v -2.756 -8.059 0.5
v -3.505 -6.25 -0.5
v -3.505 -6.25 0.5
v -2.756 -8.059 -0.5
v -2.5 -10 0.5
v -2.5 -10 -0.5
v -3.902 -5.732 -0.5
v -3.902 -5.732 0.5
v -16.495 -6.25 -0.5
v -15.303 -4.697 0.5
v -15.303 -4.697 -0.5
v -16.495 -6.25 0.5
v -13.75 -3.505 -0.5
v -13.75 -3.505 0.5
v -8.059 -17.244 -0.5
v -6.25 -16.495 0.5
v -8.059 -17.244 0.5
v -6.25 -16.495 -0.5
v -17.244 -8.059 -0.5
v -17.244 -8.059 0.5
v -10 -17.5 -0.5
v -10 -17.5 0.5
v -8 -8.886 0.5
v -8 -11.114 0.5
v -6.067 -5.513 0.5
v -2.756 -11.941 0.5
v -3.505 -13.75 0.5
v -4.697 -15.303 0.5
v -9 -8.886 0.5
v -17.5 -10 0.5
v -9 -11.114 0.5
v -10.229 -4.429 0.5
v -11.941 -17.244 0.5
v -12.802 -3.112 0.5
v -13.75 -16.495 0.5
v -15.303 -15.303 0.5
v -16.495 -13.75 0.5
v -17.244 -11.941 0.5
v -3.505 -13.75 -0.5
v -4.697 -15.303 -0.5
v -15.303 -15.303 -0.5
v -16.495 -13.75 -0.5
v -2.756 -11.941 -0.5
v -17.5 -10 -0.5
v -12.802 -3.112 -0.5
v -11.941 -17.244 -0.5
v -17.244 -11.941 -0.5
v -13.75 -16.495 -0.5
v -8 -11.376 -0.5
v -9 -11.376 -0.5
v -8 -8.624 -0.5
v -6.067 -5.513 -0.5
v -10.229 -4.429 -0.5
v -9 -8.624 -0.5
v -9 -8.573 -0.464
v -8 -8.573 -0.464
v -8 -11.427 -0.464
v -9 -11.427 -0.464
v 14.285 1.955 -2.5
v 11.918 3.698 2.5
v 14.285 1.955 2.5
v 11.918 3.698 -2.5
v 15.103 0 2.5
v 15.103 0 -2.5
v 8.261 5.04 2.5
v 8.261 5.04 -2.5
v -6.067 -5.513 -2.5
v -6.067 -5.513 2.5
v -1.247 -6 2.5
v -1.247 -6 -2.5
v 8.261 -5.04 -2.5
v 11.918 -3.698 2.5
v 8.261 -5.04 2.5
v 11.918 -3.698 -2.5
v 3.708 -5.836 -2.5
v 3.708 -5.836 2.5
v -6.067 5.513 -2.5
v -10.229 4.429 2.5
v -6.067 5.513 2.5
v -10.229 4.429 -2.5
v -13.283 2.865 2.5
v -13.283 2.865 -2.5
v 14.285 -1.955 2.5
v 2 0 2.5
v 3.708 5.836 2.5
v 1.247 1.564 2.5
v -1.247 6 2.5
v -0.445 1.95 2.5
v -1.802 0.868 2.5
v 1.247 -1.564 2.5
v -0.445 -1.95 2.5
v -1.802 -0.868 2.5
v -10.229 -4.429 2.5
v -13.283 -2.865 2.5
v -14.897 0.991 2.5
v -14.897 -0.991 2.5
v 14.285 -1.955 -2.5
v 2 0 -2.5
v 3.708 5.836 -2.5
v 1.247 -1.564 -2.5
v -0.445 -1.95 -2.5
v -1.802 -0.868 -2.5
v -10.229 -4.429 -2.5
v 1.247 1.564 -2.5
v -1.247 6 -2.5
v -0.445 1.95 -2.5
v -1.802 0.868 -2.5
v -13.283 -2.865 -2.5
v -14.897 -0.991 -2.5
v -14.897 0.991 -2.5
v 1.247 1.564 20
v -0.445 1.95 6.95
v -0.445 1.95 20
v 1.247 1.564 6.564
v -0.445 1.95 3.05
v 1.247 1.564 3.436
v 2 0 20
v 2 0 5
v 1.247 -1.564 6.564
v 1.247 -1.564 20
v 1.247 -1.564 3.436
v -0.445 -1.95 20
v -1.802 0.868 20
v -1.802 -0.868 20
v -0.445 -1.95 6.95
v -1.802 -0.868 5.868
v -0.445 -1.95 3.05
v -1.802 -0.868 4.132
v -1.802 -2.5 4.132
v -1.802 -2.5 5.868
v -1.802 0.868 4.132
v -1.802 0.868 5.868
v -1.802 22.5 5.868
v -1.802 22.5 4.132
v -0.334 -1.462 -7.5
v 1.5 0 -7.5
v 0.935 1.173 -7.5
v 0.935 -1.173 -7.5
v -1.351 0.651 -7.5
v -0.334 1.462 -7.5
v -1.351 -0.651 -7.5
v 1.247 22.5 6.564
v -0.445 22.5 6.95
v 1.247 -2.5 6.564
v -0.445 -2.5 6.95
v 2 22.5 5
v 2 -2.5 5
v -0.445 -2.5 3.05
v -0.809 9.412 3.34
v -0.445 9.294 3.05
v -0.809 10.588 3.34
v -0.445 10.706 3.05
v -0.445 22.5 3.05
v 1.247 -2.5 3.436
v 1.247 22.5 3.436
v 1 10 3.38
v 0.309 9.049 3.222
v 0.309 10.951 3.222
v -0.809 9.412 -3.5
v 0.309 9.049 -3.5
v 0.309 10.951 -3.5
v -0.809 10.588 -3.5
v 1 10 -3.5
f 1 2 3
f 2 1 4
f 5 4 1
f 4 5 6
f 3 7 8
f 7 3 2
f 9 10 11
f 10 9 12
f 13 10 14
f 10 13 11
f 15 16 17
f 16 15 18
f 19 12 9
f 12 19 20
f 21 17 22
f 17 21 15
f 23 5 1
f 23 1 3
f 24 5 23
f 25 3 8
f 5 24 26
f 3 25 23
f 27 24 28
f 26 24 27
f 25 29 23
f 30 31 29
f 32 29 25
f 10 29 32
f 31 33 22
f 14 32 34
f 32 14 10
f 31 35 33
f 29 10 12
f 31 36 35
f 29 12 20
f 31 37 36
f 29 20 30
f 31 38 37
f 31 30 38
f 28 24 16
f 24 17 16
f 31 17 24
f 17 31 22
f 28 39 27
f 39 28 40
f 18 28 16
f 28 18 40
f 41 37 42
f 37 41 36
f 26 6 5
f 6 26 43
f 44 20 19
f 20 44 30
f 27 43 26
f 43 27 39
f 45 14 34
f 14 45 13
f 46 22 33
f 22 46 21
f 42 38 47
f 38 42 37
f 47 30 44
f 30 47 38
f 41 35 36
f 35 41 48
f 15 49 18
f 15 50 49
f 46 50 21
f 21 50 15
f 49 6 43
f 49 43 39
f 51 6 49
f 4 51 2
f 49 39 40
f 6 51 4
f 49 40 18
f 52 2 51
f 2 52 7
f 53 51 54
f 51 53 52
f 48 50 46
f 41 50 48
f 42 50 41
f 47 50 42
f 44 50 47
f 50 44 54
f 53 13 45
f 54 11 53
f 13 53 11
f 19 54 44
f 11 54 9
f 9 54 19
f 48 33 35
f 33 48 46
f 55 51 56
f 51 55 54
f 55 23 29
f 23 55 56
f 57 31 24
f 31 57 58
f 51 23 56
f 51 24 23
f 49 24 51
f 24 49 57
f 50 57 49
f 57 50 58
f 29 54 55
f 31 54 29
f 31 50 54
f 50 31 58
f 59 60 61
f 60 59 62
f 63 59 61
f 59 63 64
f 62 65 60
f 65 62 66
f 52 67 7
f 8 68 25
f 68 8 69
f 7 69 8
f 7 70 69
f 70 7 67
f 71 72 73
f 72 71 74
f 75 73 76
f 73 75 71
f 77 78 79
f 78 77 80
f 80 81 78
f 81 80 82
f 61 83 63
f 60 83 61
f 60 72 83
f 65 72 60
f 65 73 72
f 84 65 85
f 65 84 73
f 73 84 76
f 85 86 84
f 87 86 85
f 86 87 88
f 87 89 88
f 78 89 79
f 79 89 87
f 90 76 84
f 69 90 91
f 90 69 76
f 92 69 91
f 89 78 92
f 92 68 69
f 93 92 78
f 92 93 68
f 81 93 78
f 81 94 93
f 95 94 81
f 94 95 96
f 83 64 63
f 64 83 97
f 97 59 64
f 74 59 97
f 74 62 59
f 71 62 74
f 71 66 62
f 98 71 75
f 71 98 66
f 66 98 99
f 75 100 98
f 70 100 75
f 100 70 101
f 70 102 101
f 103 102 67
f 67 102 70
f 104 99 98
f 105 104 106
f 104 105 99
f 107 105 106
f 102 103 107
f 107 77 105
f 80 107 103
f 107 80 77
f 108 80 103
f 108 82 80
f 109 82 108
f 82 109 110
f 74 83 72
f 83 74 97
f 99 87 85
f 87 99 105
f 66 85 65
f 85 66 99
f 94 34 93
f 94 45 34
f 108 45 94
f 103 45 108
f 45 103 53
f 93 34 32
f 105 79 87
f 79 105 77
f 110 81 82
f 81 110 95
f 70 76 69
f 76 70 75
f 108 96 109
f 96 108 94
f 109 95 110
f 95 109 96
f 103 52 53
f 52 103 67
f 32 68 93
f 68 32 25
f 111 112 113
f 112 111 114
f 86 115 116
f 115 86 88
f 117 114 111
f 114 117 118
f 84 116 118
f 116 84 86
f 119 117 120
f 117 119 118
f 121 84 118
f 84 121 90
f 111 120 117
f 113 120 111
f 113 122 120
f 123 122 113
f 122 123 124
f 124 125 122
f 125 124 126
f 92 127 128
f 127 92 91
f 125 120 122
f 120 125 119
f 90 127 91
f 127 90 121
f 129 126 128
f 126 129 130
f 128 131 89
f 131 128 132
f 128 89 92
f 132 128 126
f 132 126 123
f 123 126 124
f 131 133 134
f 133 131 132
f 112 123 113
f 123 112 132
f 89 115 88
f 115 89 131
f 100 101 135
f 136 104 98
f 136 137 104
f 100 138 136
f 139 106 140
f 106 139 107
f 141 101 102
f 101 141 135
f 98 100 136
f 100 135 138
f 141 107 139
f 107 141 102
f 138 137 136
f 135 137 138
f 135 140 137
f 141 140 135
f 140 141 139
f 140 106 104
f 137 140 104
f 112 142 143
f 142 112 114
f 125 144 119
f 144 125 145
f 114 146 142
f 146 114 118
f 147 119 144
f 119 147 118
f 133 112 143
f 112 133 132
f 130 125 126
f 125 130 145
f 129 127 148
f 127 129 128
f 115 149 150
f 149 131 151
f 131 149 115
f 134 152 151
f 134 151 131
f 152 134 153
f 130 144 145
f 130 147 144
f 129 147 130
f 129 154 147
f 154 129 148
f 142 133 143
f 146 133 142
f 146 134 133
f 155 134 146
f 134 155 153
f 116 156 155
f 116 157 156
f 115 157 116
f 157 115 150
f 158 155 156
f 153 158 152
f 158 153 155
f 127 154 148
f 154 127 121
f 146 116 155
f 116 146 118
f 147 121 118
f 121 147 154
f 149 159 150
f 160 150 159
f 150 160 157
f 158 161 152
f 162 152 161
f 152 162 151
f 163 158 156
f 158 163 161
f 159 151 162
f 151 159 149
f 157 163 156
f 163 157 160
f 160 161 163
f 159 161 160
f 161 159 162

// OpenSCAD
// Parameters for key component dimensions
key_length = 30;  // Total length of the key
key_width = 12;   // Width of the key
key_thickness = 5; // Thickness of the key
rounded_edge_diameter = 6; // Diameter for rounded features

// Parameters for central shaft
central_shaft_diameter = 4; // Reduced diameter for central shaft
central_shaft_length = 20;  // Length of central shaft

// Parameters for input shaft
input_shaft_taper_length = 5; // Length of the taper on input shaft
input_shaft_diameter_min = 3; // Minimum diameter at taper
input_shaft_diameter_max = 4; // Maximum diameter before taper

// Parameters for output shaft
output_shaft_length = 25;  // Extended length of output shaft
output_shaft_diameter = 4; // Diameter of output shaft

// Parameters for spacer rings
spacer_ring_thickness = 2; // Reduced thickness for spacer rings
spacer_ring_diameter = 5;  // Diameter of spacer rings

// Parameters for flange plate
flange_plate_bolt_hole_diameter = 3; // Enlarged bolt hole diameter

// Parameters for nuts and bolts
nut_side_length = 3; // Side length for hexagonal nuts
bolt_length = 7;     // Extended length for bolts
bolt_diameter = 2;   // Diameter of bolts

// Module Definitions
module central_shaft() {
    cylinder(d = central_shaft_diameter, h = central_shaft_length, center = true);
}

module input_shaft() {
    cylinder(d1 = input_shaft_diameter_min, d2 = input_shaft_diameter_max, h = input_shaft_taper_length, center = true);
}

module output_shaft() {
    rotate([90, 0, 0])
        cylinder(d = output_shaft_diameter, h = output_shaft_length, center = true);
}

module spacer_ring() {
    cylinder(d = spacer_ring_diameter, h = spacer_ring_thickness, center = true);
}

module flange_plate() {
    difference() {
        cylinder(d = 15, h = 1, center = true);
        translate([flange_plate_bolt_hole_diameter / 2, 0, 0])
            rotate([0, 90, 0])
            cylinder(d = flange_plate_bolt_hole_diameter, h = 1, center = true);
    }
}

module nut() {
    for (i = [0 : 5])
        rotate([0, 0, i * 60])
            translate([nut_side_length / 2, 0, 0])
            square([nut_side_length, nut_side_length]);
}

module bolt() {
    cylinder(d = bolt_diameter, h = bolt_length, center = true);
}

module key() {
    difference() {
        // Create the base shape of the key with sleek curved design
        resize([key_length, key_width, key_thickness]) 
            cylinder(d = key_width, h = key_thickness, center = true);
        
        // Ensure proper insertion alignment
        translate([0, 0, -key_thickness / 2 + 1]) // Improved positioning
            square([key_width - 2, 2], center = true);
    }
}

// Render the components
translate([0, 0, 10]) central_shaft();
translate([0, 0, -5]) input_shaft();
translate([0, 10, 5]) output_shaft();
translate([10, 0, 0]) spacer_ring();
translate([-10, -10, 0]) flange_plate();
translate([0, -10, 0]) nut();
translate([0, 10, 0]) bolt();
key();
